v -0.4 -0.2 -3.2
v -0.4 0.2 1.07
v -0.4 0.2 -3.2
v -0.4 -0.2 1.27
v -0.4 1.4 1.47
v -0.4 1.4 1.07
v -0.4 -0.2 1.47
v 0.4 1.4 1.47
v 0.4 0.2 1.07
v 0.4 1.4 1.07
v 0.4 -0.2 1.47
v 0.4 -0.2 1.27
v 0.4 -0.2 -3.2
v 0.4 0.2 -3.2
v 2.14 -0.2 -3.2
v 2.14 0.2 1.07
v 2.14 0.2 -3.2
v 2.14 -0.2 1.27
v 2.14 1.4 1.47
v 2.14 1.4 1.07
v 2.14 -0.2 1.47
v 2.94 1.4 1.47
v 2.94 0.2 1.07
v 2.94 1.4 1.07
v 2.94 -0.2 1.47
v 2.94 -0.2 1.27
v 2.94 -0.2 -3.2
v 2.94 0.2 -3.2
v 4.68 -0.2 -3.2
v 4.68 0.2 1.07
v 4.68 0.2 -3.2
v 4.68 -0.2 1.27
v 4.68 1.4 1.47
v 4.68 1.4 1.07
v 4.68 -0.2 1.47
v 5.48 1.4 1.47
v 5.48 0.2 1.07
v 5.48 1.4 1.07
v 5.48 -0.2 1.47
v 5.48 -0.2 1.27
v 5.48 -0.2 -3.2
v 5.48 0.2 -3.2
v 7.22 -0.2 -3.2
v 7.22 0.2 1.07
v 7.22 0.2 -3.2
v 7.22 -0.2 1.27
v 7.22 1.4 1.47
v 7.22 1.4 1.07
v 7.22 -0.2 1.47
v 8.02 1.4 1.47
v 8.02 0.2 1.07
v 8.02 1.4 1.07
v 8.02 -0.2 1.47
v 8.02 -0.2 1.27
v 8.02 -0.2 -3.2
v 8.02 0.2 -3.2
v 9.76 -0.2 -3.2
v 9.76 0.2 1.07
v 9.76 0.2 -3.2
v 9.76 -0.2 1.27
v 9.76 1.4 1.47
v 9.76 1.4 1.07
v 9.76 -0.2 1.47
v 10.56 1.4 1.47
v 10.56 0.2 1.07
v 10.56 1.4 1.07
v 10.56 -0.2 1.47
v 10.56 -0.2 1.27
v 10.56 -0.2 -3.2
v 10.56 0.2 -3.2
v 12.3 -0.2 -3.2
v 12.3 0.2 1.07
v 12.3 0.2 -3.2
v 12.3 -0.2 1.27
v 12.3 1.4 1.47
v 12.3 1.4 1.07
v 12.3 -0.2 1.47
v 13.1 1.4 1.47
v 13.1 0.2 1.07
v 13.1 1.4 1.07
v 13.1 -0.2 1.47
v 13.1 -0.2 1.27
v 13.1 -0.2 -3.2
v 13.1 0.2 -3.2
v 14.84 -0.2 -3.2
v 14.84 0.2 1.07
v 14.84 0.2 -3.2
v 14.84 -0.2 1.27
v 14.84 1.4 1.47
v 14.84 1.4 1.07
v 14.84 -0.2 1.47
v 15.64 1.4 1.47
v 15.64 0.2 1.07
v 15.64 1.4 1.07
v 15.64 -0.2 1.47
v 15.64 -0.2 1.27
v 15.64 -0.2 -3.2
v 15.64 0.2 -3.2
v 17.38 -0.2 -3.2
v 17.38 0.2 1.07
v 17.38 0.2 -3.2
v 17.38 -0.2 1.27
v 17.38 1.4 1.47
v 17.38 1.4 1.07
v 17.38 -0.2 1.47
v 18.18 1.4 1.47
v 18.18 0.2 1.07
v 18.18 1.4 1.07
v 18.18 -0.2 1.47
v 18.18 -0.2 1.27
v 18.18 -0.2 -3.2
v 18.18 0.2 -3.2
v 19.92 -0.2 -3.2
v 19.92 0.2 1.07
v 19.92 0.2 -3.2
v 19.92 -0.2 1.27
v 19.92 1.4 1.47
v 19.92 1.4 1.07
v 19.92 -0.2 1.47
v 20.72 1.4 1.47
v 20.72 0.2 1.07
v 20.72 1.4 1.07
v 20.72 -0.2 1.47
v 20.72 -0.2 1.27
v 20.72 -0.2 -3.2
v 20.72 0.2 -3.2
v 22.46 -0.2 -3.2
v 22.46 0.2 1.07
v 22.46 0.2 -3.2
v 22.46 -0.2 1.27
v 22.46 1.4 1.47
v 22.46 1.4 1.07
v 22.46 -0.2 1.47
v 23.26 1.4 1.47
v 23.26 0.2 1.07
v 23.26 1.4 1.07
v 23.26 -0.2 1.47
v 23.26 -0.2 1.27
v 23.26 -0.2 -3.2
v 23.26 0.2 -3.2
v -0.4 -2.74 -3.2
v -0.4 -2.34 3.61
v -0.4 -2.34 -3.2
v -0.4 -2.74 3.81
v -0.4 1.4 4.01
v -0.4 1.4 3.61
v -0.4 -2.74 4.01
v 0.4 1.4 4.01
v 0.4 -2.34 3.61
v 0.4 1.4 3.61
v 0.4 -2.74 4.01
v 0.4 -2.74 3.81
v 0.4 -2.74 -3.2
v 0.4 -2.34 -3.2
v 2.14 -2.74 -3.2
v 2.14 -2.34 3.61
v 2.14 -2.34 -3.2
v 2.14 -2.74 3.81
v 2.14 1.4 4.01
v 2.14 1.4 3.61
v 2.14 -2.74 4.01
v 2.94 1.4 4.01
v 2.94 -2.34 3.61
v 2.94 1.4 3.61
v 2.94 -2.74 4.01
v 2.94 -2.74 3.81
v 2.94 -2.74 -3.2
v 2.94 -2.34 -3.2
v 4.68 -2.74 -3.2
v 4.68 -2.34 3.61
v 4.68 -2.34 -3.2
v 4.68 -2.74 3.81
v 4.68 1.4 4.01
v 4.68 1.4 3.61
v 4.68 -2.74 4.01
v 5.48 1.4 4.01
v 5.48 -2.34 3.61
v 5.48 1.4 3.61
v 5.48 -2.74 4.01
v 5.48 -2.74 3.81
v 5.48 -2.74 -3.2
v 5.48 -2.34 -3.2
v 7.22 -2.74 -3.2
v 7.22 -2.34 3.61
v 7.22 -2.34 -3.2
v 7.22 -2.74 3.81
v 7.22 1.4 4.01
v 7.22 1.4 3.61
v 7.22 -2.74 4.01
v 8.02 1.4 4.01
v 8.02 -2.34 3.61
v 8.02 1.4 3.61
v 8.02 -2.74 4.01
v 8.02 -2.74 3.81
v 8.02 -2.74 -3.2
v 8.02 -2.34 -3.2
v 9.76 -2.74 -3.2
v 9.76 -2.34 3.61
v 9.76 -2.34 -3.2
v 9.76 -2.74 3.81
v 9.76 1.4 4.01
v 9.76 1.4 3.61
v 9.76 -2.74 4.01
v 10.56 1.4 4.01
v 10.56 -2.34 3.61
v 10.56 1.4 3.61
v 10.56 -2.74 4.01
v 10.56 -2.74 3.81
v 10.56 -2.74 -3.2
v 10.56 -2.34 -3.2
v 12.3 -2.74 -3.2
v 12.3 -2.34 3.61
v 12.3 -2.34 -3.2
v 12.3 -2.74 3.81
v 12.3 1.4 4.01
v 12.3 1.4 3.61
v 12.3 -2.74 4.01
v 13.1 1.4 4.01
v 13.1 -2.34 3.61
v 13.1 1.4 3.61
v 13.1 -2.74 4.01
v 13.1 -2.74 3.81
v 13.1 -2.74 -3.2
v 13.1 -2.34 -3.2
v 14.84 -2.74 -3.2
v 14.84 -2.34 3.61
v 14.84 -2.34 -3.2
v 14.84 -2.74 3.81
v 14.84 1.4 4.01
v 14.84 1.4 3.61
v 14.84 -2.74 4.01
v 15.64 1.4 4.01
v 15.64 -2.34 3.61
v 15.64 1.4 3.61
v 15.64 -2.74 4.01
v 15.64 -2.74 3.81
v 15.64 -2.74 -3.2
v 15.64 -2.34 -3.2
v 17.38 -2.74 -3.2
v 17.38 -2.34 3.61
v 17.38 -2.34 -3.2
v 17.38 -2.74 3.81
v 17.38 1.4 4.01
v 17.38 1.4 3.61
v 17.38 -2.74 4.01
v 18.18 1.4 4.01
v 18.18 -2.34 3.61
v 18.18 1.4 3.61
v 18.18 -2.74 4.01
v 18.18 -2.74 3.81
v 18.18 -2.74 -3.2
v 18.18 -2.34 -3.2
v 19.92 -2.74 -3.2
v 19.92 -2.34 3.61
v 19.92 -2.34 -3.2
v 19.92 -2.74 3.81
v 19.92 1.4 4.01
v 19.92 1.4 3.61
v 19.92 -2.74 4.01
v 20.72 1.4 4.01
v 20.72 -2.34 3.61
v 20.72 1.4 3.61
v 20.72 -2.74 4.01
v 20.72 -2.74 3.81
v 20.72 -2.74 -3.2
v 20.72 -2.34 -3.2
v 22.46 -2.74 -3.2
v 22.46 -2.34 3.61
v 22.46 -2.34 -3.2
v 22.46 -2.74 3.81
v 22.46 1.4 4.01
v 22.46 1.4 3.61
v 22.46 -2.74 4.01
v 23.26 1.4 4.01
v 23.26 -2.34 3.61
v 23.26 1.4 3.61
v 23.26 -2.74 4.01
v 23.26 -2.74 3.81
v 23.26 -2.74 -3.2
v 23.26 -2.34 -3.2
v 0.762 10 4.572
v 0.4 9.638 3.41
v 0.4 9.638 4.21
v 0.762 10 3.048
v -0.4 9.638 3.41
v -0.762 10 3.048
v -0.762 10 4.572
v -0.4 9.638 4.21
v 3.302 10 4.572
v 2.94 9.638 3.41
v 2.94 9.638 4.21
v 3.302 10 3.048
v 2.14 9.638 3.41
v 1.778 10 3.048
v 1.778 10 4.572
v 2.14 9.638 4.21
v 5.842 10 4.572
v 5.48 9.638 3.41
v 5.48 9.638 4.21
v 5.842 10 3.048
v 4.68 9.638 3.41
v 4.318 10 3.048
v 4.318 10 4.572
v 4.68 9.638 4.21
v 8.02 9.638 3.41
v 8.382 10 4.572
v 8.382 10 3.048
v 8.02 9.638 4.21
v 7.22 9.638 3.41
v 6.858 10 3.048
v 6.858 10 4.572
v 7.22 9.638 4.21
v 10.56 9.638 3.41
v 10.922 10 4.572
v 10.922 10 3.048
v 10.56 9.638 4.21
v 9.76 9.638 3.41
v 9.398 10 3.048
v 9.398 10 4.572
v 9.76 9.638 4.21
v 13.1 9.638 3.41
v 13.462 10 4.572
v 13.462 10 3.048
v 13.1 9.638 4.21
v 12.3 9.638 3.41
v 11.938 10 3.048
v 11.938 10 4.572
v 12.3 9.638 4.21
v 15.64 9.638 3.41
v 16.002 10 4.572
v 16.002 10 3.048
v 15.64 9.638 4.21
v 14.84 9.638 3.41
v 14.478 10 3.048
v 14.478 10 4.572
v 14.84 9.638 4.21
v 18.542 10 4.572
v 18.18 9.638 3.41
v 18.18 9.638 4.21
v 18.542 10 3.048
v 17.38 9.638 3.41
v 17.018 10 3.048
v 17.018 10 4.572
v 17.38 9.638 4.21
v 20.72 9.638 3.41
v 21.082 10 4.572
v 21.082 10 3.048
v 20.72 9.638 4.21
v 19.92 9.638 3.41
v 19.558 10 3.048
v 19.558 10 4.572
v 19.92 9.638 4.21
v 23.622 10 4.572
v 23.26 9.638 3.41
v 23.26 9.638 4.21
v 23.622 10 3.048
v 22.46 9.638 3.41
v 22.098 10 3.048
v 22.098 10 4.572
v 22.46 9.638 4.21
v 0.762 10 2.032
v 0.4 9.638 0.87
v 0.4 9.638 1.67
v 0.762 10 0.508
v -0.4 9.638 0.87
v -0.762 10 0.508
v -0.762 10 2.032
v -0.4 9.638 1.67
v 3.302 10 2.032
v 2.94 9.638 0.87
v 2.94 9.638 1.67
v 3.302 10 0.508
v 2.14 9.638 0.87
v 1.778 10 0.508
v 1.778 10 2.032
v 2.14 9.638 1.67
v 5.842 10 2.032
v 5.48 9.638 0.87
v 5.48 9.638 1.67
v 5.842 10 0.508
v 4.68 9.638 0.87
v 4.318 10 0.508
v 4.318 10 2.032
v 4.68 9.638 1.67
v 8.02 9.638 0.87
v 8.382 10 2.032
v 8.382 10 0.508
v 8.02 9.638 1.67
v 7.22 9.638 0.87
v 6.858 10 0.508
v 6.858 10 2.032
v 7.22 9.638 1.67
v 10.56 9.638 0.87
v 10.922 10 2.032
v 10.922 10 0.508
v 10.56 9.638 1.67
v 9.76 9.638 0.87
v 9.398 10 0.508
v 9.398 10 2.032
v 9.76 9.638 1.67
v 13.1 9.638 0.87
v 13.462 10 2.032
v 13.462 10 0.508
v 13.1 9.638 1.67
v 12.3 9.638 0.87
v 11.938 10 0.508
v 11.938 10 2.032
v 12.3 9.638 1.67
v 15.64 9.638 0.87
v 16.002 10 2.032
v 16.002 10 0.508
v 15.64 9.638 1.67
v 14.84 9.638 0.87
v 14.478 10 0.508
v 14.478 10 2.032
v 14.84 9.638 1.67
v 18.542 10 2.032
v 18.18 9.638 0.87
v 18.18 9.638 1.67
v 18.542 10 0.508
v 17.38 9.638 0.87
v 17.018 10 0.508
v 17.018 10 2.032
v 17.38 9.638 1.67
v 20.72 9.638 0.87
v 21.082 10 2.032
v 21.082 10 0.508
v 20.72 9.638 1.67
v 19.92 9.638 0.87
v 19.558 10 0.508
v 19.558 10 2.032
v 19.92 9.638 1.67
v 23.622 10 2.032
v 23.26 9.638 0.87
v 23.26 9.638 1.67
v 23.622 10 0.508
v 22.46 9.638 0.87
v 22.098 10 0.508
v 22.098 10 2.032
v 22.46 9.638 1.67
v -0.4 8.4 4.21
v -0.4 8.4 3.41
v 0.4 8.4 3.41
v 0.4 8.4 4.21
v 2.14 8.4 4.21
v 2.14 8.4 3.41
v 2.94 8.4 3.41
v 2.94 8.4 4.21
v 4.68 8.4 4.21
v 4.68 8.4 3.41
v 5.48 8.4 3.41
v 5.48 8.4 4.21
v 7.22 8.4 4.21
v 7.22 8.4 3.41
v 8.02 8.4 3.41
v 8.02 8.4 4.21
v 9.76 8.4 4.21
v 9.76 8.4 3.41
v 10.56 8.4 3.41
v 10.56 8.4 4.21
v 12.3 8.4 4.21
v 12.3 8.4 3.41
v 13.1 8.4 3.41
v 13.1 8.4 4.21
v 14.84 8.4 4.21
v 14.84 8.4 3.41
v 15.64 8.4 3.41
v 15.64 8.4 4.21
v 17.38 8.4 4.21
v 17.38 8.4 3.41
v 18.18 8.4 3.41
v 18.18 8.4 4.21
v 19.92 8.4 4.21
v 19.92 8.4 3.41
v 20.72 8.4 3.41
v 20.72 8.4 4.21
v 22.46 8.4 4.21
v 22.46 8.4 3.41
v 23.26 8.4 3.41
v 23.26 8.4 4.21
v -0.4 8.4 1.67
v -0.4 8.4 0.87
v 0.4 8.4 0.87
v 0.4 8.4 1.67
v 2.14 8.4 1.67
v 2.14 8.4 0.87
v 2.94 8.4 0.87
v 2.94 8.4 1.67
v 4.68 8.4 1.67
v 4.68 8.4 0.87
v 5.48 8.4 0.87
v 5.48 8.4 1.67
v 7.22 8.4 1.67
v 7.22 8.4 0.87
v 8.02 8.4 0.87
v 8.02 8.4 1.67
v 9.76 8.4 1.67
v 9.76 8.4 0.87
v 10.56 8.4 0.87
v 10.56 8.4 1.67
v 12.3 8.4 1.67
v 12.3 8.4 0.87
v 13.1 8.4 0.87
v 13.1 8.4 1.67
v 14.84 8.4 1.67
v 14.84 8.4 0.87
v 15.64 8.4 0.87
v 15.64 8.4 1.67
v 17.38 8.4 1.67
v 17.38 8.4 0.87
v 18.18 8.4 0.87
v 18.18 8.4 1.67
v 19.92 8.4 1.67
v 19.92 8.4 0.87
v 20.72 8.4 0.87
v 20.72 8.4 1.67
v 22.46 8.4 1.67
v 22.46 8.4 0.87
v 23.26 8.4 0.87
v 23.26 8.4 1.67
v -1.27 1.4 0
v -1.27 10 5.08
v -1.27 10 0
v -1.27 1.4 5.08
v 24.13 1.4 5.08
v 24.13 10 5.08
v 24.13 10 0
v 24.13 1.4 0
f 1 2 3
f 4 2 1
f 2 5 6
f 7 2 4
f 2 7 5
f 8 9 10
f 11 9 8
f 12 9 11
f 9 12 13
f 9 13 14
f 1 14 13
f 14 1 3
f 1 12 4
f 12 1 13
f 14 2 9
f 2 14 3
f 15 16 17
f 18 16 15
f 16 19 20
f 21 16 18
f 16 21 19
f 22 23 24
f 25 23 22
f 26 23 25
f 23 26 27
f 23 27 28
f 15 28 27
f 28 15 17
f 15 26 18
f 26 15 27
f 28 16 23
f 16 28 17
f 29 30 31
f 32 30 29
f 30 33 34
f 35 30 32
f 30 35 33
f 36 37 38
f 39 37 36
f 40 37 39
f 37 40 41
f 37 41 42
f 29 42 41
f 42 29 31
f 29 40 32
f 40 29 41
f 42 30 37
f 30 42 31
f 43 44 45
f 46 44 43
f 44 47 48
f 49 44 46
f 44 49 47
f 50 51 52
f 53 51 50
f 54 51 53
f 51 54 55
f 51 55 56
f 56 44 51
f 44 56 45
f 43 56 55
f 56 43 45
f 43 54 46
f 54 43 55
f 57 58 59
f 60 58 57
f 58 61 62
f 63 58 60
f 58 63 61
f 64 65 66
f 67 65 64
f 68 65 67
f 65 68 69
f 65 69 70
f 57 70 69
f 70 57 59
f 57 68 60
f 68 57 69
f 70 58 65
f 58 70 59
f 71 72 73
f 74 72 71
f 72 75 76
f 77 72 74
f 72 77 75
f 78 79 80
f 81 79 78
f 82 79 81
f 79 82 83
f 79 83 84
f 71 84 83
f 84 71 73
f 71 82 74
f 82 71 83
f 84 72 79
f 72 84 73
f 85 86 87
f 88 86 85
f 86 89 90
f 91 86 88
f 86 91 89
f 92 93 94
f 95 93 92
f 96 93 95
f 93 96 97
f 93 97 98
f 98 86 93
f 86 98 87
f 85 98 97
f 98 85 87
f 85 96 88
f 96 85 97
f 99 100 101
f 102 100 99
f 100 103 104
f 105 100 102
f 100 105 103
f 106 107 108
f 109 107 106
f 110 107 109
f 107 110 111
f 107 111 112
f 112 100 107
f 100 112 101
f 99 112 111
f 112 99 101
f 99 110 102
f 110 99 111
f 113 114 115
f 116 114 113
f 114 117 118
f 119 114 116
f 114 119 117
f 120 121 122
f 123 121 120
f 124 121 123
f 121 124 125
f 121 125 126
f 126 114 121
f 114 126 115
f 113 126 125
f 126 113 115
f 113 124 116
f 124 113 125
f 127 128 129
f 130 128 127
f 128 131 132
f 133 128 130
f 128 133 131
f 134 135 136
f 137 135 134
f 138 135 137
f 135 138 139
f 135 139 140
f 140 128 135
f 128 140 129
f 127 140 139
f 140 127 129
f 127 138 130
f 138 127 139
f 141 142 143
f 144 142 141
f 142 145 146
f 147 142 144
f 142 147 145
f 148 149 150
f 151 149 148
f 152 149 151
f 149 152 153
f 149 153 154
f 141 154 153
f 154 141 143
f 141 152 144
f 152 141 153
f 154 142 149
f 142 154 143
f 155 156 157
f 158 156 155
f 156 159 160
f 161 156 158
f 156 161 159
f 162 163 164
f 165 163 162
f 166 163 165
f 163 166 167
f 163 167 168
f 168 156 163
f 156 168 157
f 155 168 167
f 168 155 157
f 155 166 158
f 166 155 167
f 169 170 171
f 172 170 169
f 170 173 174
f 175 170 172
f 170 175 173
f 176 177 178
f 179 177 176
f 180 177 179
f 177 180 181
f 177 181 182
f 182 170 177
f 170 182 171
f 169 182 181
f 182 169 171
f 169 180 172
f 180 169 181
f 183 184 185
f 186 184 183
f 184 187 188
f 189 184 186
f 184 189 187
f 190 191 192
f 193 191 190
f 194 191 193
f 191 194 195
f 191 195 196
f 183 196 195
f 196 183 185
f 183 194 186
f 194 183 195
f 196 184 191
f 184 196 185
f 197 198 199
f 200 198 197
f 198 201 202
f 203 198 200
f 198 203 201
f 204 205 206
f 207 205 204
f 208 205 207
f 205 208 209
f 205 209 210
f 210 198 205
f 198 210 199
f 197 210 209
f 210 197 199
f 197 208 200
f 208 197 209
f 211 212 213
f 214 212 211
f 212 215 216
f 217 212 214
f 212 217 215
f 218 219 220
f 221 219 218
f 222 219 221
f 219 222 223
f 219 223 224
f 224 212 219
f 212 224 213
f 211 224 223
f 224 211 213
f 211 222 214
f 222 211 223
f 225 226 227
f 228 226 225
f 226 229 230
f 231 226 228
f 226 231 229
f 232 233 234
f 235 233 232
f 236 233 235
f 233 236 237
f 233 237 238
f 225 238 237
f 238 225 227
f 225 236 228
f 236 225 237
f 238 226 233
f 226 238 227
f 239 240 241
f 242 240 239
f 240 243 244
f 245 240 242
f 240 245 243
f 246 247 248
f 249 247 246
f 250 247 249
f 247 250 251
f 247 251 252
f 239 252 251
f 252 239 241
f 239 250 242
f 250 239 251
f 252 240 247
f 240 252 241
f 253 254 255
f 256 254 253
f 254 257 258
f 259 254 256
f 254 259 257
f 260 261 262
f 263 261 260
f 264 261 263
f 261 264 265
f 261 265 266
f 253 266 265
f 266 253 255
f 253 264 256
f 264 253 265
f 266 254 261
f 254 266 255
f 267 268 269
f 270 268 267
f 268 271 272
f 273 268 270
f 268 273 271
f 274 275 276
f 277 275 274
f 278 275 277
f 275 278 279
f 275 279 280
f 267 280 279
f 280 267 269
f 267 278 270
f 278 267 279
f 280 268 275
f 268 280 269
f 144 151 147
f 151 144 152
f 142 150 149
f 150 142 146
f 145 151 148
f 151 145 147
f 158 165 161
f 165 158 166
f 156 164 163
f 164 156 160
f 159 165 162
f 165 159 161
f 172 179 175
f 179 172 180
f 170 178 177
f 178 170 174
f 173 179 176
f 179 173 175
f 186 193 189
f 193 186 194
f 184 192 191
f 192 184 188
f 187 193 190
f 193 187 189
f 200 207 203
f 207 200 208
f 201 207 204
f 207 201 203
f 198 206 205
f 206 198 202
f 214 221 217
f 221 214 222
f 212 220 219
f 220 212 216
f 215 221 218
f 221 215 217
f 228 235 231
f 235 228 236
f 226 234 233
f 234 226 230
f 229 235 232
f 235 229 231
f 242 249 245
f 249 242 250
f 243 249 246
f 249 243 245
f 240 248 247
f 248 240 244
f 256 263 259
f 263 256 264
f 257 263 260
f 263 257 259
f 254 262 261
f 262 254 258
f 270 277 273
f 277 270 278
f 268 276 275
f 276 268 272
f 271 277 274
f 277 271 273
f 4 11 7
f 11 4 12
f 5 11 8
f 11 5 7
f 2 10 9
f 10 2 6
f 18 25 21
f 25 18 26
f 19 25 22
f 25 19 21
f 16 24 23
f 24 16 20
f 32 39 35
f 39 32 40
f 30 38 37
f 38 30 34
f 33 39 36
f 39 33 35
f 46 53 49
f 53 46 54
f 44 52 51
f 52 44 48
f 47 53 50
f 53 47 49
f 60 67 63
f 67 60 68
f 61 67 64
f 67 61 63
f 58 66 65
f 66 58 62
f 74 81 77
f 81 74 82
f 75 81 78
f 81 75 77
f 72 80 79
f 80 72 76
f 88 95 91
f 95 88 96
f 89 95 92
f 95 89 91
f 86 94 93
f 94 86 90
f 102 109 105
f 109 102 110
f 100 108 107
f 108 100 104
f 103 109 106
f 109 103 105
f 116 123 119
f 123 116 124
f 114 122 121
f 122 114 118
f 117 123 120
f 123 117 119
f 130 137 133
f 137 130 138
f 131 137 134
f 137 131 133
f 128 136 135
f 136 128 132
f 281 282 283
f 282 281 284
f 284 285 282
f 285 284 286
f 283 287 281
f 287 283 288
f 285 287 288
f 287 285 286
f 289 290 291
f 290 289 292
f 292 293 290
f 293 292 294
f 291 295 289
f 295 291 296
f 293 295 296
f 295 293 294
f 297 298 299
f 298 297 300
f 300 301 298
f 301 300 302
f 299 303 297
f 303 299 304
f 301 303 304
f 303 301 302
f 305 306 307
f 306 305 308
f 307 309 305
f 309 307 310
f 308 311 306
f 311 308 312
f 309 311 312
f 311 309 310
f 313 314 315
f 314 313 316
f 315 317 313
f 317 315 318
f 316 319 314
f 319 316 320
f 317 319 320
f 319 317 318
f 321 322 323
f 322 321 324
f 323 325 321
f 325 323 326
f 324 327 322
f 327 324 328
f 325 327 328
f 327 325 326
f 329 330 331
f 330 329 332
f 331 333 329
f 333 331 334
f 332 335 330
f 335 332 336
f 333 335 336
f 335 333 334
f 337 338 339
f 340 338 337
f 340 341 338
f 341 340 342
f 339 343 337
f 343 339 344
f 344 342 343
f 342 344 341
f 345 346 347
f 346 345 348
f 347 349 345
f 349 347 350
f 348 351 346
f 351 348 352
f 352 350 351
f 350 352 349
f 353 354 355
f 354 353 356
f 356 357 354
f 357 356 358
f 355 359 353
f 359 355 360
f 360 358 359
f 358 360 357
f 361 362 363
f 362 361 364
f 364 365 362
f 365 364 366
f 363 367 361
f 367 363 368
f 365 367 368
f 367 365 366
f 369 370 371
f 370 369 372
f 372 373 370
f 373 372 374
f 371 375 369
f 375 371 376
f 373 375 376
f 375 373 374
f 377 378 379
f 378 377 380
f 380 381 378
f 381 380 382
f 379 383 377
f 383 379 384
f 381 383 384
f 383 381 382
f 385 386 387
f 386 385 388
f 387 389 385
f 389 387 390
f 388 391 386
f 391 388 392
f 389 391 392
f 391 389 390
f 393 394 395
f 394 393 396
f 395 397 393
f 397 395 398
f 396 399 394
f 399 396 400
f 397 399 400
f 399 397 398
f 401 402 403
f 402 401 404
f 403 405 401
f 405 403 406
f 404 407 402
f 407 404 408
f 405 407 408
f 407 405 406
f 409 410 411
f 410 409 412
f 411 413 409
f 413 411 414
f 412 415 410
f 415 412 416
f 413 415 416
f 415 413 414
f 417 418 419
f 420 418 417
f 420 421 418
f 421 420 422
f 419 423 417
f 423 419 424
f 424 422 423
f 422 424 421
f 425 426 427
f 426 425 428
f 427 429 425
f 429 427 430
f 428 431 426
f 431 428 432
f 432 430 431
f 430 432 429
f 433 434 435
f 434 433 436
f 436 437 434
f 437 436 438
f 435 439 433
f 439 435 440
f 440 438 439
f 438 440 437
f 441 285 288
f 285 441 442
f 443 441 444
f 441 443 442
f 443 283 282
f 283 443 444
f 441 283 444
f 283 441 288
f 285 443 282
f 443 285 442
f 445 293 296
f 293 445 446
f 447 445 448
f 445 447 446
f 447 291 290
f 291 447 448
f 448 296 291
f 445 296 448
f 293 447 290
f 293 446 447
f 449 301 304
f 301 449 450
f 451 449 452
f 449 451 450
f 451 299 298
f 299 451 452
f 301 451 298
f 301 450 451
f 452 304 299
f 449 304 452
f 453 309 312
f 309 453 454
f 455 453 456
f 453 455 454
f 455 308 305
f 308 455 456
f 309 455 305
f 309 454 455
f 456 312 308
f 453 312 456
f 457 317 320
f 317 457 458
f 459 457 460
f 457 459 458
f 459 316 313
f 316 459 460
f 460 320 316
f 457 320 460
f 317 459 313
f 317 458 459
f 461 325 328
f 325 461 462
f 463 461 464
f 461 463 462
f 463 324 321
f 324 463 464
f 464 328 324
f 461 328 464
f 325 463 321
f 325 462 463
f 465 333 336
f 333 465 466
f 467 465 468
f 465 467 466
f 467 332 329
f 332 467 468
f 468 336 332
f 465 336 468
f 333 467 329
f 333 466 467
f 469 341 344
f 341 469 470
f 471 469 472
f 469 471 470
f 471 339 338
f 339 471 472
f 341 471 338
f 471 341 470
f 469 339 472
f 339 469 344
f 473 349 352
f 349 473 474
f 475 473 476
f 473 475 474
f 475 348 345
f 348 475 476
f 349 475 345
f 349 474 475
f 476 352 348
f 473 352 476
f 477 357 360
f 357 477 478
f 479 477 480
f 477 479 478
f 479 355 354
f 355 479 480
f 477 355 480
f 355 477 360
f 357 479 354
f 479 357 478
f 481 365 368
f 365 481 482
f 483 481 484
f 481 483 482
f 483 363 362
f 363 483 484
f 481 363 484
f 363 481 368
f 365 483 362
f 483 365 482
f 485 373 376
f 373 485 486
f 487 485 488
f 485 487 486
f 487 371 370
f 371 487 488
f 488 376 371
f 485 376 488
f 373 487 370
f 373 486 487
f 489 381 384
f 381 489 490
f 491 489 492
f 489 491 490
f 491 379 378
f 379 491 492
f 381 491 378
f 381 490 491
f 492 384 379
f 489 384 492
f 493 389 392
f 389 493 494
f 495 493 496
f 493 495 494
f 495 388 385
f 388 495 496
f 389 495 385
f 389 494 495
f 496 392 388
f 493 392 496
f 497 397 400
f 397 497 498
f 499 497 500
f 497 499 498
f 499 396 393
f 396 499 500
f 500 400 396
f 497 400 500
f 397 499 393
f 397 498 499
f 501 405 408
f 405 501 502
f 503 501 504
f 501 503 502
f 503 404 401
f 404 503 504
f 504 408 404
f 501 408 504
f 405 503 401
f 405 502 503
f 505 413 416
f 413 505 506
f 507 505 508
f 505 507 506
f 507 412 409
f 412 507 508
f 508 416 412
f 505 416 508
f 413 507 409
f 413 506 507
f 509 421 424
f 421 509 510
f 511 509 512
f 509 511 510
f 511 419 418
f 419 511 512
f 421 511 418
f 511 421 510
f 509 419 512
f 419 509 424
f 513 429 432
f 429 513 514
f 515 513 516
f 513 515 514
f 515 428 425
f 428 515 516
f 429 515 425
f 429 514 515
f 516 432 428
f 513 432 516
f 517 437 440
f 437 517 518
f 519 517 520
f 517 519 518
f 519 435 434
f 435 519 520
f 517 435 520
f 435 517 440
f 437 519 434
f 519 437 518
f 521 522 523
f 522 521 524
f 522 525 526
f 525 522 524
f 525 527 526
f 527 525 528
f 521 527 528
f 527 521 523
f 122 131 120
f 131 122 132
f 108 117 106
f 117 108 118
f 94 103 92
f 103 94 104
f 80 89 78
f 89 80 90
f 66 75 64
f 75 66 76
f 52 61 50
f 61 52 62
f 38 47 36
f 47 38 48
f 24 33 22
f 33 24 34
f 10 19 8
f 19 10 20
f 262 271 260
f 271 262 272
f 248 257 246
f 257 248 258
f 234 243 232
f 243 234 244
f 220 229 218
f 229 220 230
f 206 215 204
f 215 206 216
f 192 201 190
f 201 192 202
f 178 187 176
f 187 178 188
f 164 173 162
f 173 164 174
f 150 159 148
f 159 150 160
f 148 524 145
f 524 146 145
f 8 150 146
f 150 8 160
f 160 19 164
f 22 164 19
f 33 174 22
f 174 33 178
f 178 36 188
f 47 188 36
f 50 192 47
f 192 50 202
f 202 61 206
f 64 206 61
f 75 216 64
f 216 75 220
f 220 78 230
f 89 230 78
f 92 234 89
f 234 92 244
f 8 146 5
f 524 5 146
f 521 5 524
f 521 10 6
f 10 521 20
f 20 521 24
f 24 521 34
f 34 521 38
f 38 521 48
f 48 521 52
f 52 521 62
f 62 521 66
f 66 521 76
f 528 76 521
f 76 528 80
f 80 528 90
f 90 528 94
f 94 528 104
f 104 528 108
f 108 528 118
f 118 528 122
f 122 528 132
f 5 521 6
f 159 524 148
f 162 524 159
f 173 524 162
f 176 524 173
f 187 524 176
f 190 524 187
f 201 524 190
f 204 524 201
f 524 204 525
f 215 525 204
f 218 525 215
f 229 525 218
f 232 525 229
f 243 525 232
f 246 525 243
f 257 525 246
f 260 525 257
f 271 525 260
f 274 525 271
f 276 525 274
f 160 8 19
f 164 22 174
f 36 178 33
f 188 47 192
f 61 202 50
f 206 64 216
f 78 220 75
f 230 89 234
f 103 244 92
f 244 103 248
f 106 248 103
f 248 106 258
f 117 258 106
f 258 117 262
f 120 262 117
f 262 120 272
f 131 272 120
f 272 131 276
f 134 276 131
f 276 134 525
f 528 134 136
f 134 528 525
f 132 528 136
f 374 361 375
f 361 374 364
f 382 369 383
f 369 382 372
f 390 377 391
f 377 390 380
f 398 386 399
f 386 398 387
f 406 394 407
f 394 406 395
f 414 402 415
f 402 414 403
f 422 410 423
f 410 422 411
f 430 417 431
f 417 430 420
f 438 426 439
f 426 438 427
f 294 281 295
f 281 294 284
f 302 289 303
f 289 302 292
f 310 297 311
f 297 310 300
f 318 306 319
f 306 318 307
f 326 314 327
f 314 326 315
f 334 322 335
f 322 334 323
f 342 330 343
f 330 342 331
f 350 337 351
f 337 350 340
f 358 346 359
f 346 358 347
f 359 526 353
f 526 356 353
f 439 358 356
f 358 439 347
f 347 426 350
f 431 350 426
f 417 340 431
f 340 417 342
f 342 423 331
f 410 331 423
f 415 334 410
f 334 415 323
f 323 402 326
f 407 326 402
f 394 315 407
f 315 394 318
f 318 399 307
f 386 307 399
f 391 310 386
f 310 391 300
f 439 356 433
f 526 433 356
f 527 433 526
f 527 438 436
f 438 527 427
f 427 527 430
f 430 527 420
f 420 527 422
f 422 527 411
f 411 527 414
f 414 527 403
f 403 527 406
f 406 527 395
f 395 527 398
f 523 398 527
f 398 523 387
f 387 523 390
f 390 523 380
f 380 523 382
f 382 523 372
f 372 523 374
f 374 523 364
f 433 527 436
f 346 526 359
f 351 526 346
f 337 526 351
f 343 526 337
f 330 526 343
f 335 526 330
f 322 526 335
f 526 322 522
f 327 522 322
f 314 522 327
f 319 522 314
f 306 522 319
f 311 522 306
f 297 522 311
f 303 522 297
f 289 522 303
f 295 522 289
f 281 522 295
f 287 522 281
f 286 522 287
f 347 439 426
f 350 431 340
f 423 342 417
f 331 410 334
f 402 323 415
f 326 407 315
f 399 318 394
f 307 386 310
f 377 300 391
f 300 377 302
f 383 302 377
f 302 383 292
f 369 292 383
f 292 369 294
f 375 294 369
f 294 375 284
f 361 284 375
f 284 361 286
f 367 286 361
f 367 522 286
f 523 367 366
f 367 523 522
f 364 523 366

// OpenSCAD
pin_width = 0.8;
pin_thickness = 0.4;
pin_step = 2.54;
pin_bottom = 3.2;
pin_to_case = 1.4;

pins_in_a_row = 10;

case_w = pins_in_a_row*pin_step;
case_th = 8.6;
case_h = 2*pin_step;


module pin(_x,_y,_height)
{
	translate([-_x/2,-_y/2,0])
		cube([_x,_y,_height]);
};

module pins_array(_x,_y,_cnt, _distance, _height)
{
	if (_cnt>0)
	{
		for (_i = [0:_cnt-1])
		{
			translate([_distance*_i,0,0])
				pin(_x,_y,_height);
		}
	}
}

module pinhole_array(_cnt, _distance)
{
	if (_cnt>0)
	{
		for (_i = [0:_cnt-1])
		{
            translate([_distance*_i,0,0])
            rotate(90,[1,0,0])
            polyhedron(
                points=[ [pin_step/2,pin_step/2,0],[pin_step/2,-pin_step/2,0],[-pin_step/2,-pin_step/2,0],[-pin_step/2,pin_step/2,0],
                   [0,0,pin_step/2]  ],
                faces=[ [0,1,4],[1,2,4],[2,3,4],[3,0,4],
                    [1,0,3],[2,1,3] ]
            );
		}
	}
}


union()
{   
    // First vertical array of pins
    translate([0,0,-pin_bottom])
    pins_array(pin_width, pin_thickness, pins_in_a_row,pin_step, pin_bottom+pin_step/2);

    // Second vertical array of pins
    translate([0,-pin_step,-pin_bottom])
    pins_array(pin_width, pin_thickness, pins_in_a_row,pin_step, pin_bottom+pin_step*1.5);
    
    // First Horizontal array of pins
    translate([0,pin_to_case,pin_step*1.5])
    rotate([90,0,0])
    pins_array(pin_width, pin_thickness, pins_in_a_row,pin_step, pin_step+pin_to_case+pin_thickness/2);

    // Second Horizontal array of pins
    translate([0,pin_to_case,pin_step*0.5])
    rotate([90,0,0])
    pins_array(pin_width, pin_thickness, pins_in_a_row,pin_step, pin_to_case+pin_thickness/2);

    difference()
    {
        // Draw case
        translate([-pin_step/2,pin_to_case,0])
        cube([case_w,case_th,case_h]);

        union()
        {
            // Draw holes
            translate([0,case_th+pin_to_case+pin_step/5,pin_step*1.5])
            pinhole_array(pins_in_a_row, pin_step);
            translate([0,case_th+pin_to_case+pin_step/5,pin_step*0.5])
            pinhole_array(pins_in_a_row, pin_step);
            // First Horizontal array of pins
            translate([0,pin_to_case+case_th,pin_step*1.5])
            rotate([90,0,0])
            pins_array(pin_width, pin_width, pins_in_a_row,pin_step, pin_to_case+pin_thickness/2);
            // Second Horizontal array of pins
            translate([0,pin_to_case+case_th,pin_step*0.5])
            rotate([90,0,0])
            pins_array(pin_width, pin_width, pins_in_a_row,pin_step, pin_to_case+pin_thickness/2);
        }
    }
};
